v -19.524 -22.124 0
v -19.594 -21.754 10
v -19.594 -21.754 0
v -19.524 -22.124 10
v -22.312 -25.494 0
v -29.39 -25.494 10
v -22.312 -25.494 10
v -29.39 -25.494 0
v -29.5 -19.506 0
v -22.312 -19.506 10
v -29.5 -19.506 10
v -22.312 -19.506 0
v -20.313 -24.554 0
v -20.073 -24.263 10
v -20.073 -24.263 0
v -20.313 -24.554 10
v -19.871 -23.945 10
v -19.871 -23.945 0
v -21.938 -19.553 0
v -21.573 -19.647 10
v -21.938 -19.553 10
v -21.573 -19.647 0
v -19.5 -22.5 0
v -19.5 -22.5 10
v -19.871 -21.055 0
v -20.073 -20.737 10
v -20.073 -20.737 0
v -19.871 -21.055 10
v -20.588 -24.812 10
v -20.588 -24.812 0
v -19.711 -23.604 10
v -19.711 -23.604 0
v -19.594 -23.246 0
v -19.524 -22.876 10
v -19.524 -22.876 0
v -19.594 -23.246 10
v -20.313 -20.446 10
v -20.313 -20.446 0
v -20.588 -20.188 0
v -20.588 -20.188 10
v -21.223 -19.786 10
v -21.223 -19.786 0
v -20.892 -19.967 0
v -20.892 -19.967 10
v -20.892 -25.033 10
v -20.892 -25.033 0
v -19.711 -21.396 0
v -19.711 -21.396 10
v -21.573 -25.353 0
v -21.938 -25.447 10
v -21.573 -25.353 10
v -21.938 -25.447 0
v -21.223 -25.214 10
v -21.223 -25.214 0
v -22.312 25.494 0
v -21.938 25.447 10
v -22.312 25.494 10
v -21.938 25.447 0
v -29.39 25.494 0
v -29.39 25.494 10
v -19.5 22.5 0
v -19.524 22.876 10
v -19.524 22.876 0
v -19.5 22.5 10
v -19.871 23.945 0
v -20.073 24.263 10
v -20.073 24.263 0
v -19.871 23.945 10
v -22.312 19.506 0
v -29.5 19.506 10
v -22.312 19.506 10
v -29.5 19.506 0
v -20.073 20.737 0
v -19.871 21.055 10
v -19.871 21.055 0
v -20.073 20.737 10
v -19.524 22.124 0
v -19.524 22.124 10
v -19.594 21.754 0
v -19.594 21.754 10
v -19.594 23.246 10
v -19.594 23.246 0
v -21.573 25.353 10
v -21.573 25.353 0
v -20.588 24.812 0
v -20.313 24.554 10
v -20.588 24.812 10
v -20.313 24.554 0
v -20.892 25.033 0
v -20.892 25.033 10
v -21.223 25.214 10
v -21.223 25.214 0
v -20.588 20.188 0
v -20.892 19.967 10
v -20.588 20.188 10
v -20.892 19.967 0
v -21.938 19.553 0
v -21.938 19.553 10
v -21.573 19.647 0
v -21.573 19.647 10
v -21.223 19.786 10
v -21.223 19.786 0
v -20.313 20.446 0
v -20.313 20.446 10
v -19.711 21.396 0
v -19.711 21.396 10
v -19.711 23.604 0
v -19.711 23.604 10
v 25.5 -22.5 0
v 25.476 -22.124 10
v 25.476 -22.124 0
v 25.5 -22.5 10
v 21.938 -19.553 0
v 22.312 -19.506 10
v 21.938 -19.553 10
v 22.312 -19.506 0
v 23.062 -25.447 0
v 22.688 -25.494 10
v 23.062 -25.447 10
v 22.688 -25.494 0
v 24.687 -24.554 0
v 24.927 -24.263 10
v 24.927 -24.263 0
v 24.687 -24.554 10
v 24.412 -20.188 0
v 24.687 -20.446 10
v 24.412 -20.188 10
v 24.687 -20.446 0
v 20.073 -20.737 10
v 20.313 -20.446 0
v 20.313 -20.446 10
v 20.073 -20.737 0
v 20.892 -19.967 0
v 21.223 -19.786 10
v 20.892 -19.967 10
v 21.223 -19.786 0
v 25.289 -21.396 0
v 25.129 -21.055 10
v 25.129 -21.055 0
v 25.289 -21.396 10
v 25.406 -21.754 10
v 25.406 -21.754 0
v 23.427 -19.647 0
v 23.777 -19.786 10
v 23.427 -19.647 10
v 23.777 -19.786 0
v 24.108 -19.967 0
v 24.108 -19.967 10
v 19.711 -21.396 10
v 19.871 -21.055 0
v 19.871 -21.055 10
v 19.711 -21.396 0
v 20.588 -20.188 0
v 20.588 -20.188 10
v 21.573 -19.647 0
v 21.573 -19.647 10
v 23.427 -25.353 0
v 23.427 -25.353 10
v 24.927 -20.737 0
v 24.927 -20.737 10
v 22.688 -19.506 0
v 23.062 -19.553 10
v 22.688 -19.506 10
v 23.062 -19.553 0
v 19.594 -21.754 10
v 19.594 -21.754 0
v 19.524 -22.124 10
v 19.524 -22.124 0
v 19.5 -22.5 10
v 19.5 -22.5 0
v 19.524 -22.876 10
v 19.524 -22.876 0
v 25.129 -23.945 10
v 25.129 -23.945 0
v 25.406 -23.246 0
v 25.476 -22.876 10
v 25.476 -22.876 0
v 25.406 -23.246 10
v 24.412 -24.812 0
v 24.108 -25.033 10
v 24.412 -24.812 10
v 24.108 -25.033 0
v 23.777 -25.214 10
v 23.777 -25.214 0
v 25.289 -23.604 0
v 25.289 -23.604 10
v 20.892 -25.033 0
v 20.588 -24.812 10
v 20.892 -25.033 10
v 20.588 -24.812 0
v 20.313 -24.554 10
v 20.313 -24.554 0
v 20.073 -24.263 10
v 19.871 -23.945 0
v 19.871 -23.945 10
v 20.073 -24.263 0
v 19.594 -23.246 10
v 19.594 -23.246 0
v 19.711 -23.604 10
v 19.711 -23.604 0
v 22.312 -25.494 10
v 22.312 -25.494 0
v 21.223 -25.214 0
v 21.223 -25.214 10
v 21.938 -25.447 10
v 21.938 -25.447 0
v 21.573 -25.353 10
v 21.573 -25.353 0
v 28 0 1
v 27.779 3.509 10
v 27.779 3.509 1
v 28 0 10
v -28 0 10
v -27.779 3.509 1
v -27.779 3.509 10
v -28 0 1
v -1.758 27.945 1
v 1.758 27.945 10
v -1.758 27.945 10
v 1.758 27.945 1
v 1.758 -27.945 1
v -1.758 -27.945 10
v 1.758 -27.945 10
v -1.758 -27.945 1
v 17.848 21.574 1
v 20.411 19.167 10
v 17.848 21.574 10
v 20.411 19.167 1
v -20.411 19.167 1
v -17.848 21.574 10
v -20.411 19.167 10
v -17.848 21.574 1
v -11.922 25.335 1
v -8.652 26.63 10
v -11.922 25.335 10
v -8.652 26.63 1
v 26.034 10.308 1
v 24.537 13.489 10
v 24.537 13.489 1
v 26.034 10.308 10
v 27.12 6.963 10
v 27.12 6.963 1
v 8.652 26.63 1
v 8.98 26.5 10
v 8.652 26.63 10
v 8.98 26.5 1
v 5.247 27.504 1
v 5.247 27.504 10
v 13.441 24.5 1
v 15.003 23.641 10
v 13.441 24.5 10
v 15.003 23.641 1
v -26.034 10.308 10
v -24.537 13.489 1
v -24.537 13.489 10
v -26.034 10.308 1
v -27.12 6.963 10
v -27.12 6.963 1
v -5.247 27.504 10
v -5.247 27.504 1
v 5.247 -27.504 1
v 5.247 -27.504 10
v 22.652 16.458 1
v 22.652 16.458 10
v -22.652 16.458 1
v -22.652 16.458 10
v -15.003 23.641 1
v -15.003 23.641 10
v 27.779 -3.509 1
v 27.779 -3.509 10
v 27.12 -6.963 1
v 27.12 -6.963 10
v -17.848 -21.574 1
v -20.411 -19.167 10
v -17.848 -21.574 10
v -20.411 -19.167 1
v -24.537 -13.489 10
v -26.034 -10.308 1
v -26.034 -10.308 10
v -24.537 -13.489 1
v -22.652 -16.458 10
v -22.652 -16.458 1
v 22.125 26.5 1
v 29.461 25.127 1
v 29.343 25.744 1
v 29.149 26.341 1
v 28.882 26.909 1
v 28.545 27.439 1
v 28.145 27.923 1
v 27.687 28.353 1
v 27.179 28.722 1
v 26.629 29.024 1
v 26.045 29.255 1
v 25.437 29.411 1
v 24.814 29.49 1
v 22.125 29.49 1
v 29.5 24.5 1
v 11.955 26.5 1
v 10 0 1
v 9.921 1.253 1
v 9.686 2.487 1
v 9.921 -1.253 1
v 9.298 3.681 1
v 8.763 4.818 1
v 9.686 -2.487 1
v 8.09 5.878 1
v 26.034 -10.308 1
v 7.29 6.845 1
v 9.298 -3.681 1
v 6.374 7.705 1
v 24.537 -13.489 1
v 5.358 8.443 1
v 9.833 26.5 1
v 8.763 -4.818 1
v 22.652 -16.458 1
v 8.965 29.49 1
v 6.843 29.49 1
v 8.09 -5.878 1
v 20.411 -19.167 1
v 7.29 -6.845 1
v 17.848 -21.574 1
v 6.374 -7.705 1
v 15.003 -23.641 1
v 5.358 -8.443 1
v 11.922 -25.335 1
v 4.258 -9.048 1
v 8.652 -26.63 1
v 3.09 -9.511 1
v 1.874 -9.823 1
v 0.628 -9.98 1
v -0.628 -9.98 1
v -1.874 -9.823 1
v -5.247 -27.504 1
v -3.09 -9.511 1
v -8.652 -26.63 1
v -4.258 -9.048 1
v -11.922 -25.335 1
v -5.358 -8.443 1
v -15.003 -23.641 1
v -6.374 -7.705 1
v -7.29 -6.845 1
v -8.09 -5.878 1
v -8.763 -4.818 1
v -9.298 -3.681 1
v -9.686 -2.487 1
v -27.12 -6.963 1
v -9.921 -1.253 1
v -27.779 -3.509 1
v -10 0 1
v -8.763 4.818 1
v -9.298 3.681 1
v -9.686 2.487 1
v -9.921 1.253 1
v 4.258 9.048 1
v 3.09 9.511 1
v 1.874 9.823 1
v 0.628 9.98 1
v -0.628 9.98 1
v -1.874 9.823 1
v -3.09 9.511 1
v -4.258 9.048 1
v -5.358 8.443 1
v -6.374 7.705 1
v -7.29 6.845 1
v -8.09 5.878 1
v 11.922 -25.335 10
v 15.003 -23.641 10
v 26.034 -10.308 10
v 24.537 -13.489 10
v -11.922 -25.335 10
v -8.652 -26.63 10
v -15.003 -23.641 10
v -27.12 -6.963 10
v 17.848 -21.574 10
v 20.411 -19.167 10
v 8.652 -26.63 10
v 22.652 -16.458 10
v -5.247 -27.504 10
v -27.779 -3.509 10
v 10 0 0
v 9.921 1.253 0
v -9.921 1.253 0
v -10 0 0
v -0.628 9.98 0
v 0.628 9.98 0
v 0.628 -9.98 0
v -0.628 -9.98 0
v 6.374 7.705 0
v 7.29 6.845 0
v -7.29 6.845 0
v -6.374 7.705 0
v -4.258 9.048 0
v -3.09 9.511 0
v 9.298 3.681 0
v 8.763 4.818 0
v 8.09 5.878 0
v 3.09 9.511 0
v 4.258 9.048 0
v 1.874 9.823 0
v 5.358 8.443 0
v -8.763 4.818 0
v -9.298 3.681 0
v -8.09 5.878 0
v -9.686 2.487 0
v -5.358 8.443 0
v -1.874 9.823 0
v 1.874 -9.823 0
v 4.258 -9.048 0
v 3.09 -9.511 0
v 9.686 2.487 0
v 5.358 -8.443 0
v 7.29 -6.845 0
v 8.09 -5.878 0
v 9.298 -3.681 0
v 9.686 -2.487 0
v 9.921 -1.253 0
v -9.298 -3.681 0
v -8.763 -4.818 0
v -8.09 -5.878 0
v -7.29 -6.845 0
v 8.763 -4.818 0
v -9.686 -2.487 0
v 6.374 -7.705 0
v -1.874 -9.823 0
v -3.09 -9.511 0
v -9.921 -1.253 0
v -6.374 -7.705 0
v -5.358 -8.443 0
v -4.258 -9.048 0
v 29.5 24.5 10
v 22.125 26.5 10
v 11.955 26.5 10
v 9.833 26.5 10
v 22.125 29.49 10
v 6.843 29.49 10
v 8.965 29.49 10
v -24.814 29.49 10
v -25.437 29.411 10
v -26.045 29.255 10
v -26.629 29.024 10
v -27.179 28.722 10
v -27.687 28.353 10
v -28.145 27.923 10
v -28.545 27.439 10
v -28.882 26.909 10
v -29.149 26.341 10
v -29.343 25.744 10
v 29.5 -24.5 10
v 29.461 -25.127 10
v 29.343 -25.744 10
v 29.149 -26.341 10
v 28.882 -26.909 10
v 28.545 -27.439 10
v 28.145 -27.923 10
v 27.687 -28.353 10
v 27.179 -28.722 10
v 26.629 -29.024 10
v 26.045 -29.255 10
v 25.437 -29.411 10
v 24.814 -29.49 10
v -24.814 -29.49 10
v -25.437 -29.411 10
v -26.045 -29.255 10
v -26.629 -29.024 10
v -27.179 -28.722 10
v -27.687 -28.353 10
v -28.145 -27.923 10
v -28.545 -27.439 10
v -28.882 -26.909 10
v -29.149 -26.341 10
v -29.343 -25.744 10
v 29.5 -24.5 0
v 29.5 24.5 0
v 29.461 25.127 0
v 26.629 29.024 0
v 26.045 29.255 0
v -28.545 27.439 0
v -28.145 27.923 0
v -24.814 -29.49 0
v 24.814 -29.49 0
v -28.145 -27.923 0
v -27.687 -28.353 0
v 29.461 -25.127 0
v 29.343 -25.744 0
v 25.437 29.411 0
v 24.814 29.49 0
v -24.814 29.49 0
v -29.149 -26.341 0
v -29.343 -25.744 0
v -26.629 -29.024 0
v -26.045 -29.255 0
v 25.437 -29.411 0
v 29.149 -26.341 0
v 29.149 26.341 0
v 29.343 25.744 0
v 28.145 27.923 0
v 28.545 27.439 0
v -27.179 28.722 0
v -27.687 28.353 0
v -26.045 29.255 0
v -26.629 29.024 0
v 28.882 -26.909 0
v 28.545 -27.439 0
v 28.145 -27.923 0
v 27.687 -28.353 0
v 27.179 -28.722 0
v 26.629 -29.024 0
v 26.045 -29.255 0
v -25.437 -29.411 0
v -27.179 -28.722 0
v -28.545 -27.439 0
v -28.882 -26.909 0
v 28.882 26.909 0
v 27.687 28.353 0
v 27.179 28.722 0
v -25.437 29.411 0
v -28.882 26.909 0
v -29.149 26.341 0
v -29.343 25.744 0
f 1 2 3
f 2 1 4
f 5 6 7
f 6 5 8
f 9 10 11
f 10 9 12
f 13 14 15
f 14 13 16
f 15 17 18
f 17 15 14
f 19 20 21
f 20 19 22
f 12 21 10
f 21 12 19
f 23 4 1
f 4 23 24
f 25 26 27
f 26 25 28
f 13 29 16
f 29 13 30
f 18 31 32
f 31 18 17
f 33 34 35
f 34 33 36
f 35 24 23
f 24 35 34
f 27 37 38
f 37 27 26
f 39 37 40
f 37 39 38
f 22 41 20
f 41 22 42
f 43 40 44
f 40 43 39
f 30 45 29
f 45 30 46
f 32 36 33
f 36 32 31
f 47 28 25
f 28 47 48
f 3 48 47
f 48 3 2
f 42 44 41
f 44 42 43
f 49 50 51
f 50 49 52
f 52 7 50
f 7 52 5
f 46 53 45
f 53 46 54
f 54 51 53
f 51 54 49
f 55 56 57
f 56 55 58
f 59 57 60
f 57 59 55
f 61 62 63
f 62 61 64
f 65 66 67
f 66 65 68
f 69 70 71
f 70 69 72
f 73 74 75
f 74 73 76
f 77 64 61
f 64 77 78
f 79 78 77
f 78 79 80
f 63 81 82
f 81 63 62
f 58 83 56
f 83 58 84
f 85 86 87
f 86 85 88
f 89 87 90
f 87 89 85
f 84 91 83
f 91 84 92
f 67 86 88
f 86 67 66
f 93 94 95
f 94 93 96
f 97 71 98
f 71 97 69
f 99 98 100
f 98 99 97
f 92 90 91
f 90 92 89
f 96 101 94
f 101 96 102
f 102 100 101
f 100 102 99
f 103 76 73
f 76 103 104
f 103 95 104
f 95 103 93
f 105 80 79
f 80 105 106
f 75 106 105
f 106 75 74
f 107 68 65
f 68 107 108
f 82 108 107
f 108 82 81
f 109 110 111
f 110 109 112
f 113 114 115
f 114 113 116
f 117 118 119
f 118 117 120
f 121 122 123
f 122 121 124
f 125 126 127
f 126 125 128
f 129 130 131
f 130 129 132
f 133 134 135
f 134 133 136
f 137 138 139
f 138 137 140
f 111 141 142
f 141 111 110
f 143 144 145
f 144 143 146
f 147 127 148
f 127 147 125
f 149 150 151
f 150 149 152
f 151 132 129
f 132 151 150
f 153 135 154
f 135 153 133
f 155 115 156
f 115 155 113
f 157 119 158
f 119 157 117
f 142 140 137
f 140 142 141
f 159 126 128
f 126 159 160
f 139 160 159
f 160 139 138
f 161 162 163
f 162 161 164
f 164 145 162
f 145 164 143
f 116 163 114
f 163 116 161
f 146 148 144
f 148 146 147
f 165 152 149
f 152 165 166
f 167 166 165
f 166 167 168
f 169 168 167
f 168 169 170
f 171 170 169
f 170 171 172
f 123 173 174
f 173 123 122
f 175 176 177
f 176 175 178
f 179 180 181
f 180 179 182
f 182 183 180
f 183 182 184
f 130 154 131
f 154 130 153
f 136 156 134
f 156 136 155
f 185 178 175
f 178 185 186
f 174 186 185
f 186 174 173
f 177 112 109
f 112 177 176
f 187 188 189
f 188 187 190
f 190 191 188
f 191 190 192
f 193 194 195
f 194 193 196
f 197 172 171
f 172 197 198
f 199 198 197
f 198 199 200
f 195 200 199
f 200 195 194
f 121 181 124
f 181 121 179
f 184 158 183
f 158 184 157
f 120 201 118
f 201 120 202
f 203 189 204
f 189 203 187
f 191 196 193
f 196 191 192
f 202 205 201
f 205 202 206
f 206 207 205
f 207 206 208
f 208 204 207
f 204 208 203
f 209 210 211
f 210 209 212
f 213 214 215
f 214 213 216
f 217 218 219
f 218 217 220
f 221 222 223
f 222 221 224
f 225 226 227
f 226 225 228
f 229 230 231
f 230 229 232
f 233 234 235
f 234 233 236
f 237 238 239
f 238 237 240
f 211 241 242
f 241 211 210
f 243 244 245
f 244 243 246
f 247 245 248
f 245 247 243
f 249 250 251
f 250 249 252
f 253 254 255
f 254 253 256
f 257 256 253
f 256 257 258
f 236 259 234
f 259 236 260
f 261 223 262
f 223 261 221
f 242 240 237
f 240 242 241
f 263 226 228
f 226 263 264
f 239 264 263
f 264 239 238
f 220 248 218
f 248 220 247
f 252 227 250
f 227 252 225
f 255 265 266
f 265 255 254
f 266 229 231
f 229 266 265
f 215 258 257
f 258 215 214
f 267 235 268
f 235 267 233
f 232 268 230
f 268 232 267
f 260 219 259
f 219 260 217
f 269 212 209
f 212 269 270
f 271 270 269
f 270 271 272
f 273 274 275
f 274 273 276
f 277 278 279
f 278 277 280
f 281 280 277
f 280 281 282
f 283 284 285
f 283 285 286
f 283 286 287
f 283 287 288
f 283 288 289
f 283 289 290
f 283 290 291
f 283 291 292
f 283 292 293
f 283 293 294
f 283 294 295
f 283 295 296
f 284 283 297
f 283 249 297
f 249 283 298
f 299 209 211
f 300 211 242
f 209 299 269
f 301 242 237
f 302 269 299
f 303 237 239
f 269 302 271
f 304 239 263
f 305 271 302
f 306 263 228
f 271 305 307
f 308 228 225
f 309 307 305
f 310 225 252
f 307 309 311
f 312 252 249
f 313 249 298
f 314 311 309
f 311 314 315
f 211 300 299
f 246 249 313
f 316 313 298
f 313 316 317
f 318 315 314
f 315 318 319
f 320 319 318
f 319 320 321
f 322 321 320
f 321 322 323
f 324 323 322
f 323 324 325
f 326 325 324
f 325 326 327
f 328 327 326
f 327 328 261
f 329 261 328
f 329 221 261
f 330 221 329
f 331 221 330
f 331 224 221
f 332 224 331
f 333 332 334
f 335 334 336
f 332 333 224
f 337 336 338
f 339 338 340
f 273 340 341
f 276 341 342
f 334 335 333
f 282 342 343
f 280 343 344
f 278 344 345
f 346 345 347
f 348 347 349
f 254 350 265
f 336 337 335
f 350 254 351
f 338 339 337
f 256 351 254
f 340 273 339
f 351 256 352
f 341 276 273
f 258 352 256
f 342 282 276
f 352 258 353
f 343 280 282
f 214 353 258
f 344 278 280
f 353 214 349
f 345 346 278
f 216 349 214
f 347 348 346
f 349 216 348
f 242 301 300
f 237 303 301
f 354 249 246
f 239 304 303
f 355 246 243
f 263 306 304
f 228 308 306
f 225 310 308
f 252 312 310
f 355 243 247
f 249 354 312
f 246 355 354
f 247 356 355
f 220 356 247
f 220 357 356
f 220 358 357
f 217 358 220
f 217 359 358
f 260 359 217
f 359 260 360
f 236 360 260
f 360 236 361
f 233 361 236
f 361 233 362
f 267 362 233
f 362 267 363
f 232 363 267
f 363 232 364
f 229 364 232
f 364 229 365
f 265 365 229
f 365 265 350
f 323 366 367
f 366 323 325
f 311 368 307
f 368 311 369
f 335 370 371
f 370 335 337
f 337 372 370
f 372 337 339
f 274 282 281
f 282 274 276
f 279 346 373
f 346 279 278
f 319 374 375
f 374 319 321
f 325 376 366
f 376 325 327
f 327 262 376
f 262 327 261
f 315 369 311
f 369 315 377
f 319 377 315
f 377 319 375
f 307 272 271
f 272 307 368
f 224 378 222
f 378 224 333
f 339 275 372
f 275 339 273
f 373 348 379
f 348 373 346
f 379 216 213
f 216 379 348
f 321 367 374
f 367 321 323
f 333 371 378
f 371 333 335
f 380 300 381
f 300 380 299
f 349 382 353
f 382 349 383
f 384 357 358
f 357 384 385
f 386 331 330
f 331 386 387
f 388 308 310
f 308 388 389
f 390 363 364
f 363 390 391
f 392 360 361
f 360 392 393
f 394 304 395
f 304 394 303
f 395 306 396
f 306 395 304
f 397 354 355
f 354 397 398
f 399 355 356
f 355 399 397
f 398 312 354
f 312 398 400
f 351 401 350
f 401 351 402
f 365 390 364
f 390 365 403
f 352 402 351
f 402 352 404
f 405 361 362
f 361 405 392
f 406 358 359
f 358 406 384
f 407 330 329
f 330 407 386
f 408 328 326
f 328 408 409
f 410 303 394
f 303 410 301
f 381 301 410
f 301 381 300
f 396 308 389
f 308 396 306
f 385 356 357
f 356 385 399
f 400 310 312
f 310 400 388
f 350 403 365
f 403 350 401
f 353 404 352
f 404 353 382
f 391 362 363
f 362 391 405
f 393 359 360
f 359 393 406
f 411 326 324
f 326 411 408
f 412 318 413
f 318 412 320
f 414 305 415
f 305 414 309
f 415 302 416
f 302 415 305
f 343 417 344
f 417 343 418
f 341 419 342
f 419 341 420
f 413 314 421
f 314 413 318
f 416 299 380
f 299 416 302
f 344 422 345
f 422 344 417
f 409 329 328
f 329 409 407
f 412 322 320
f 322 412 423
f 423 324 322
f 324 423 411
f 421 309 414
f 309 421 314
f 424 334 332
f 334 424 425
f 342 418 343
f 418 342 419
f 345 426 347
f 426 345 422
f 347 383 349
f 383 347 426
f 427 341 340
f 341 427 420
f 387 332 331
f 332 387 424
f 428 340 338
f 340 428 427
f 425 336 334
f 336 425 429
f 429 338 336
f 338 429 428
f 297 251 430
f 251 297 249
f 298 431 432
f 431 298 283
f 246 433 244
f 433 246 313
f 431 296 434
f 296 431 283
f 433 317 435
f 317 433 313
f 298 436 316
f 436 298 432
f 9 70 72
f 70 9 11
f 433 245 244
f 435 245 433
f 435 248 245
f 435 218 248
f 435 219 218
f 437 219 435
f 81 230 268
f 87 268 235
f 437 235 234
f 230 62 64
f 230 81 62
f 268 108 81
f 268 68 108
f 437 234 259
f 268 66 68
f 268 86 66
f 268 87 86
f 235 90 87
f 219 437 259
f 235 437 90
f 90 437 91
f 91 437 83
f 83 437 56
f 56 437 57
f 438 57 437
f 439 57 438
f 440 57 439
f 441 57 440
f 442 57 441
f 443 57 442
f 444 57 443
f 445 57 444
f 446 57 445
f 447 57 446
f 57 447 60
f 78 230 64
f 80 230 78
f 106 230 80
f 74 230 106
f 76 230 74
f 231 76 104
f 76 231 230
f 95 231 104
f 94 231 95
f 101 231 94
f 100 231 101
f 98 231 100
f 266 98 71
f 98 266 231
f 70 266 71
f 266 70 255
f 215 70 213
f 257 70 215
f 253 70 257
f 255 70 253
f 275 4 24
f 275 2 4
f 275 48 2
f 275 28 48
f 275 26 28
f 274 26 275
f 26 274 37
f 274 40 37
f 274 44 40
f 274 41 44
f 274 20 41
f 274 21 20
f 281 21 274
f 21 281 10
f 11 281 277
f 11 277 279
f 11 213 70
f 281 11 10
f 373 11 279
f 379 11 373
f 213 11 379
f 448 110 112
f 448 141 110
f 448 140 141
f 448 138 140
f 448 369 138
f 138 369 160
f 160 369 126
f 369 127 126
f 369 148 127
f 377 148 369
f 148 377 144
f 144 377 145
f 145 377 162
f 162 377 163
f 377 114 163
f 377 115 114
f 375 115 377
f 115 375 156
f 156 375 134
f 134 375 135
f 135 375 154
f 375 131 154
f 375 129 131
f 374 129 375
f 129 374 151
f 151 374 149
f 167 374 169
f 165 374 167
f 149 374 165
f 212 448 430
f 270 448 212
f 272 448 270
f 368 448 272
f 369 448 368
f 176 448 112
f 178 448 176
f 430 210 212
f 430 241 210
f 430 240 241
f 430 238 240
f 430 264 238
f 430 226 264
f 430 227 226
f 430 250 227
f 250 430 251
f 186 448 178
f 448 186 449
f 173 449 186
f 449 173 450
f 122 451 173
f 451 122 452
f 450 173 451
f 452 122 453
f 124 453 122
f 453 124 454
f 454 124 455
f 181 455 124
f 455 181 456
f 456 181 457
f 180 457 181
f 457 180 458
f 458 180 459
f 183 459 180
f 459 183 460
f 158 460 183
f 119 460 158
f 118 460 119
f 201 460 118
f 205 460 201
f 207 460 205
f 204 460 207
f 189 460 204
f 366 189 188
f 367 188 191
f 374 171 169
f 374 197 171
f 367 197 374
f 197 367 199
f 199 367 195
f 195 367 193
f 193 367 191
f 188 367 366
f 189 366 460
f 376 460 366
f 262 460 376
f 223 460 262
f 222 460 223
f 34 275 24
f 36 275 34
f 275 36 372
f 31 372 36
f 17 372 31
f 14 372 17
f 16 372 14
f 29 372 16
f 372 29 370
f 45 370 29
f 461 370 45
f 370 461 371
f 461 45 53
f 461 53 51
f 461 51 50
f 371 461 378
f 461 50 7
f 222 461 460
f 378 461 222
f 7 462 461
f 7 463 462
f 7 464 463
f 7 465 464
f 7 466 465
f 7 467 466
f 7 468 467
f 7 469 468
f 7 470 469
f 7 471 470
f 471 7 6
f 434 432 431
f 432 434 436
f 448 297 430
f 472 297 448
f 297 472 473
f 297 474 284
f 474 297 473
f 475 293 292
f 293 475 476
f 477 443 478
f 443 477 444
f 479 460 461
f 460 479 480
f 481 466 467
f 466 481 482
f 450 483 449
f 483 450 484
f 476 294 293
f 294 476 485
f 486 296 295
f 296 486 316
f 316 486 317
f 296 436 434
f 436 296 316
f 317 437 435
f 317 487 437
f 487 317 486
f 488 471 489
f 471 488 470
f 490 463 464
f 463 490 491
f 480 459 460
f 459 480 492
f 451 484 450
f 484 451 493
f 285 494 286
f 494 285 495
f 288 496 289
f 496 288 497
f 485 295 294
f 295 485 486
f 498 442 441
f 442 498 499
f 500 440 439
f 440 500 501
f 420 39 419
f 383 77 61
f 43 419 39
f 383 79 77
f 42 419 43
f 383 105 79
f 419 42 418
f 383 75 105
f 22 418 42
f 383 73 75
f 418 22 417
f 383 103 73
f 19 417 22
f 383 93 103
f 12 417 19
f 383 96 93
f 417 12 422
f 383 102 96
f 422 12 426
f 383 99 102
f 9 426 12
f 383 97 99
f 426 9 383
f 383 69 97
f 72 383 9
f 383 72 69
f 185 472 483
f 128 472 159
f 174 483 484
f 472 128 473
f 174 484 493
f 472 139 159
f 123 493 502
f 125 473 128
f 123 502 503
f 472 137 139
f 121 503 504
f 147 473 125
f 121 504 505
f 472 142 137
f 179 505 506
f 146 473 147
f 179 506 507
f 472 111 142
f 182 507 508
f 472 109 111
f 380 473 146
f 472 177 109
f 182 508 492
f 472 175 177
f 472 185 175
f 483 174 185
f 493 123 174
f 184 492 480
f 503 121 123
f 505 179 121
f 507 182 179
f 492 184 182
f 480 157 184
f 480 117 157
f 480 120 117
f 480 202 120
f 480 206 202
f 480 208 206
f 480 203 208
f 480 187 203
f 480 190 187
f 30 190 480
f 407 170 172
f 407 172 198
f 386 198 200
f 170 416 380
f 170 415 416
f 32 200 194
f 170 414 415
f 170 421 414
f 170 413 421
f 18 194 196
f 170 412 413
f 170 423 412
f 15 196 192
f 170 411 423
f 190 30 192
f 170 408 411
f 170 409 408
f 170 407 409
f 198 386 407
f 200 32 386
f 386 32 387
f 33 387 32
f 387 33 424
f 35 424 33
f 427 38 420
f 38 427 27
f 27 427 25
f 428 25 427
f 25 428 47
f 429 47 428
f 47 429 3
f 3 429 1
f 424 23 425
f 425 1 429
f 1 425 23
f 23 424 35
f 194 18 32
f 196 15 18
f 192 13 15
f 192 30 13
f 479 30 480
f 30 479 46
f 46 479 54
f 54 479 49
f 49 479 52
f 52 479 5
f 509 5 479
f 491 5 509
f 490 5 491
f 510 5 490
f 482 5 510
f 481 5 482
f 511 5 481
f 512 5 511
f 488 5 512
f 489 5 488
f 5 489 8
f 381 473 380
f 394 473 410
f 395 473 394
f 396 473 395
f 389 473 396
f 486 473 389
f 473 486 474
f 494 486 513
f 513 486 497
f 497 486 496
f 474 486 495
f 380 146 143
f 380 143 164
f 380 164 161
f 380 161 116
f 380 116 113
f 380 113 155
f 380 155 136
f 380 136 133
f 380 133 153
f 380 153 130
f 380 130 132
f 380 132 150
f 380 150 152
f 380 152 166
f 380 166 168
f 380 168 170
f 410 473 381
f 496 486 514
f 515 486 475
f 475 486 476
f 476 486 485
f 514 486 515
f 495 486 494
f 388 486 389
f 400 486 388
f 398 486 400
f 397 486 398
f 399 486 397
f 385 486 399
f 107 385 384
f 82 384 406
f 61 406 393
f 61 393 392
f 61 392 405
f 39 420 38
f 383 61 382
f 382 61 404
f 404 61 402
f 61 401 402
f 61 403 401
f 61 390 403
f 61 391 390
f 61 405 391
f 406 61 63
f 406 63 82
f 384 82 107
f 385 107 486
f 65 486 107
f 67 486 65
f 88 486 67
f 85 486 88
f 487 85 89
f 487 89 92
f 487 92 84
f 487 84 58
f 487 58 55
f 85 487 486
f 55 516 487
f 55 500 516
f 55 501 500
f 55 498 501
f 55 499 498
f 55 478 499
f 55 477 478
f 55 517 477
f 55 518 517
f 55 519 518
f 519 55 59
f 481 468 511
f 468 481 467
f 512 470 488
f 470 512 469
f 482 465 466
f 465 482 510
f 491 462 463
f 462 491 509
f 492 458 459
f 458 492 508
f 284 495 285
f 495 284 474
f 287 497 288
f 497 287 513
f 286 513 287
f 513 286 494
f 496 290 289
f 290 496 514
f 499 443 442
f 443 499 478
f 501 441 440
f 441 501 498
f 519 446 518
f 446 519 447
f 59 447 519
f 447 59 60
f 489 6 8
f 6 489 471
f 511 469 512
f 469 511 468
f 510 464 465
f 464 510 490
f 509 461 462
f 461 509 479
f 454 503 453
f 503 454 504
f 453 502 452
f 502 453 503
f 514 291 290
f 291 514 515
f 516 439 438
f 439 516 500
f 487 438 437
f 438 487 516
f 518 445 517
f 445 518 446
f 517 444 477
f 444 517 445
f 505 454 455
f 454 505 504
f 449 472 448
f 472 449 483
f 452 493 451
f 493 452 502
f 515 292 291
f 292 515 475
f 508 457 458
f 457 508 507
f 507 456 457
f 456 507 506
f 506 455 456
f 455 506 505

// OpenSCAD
$fn = 50;


difference() {
	union() {
		translate(v = [0, 0, 0]) {
			rotate(a = [0, 0, 0]) {
				hull() {
					translate(v = [-24.5000000000, 24.5000000000, 0]) {
						rotate(a = [0, 0, 0]) {
							translate(v = [0, 0, 0]) {
								rotate(a = [0, 0, 0]) {
									cylinder(h = 10, r = 5);
								}
							}
						}
					}
					translate(v = [24.5000000000, 24.5000000000, 0]) {
						rotate(a = [0, 0, 0]) {
							translate(v = [0, 0, 0]) {
								rotate(a = [0, 0, 0]) {
									cylinder(h = 10, r = 5);
								}
							}
						}
					}
					translate(v = [-24.5000000000, -24.5000000000, 0]) {
						rotate(a = [0, 0, 0]) {
							translate(v = [0, 0, 0]) {
								rotate(a = [0, 0, 0]) {
									cylinder(h = 10, r = 5);
								}
							}
						}
					}
					translate(v = [24.5000000000, -24.5000000000, 0]) {
						rotate(a = [0, 0, 0]) {
							translate(v = [0, 0, 0]) {
								rotate(a = [0, 0, 0]) {
									cylinder(h = 10, r = 5);
								}
							}
						}
					}
				}
			}
		}
	}
	union() {
		translate(v = [-30.0000000000, -22.5000000000, -125]) {
			rotate(a = [0, 0, 0]) {
				hull() {
					translate(v = [7.5000000000, 0, 0]) {
						rotate(a = [0, 0, 0]) {
							translate(v = [0, 0, 0]) {
								rotate(a = [0, 0, 0]) {
									cylinder(h = 250, r = 3.0000000000);
								}
							}
						}
					}
					translate(v = [-7.5000000000, 0, 0]) {
						rotate(a = [0, 0, 0]) {
							translate(v = [0, 0, 0]) {
								rotate(a = [0, 0, 0]) {
									cylinder(h = 250, r = 3.0000000000);
								}
							}
						}
					}
				}
			}
		}
		translate(v = [-30.0000000000, 22.5000000000, -125]) {
			rotate(a = [0, 0, 0]) {
				hull() {
					translate(v = [7.5000000000, 0, 0]) {
						rotate(a = [0, 0, 0]) {
							translate(v = [0, 0, 0]) {
								rotate(a = [0, 0, 0]) {
									cylinder(h = 250, r = 3.0000000000);
								}
							}
						}
					}
					translate(v = [-7.5000000000, 0, 0]) {
						rotate(a = [0, 0, 0]) {
							translate(v = [0, 0, 0]) {
								rotate(a = [0, 0, 0]) {
									cylinder(h = 250, r = 3.0000000000);
								}
							}
						}
					}
				}
			}
		}
		translate(v = [22.5000000000, -22.5000000000, -125.0000000000]) {
			rotate(a = [0, 0, 0]) {
				cylinder(h = 250, r = 3.0000000000);
			}
		}
		translate(v = [0, 0, 1.0000000000]) {
			rotate(a = [0, 0, 0]) {
				cylinder(h = 12, r = 28.0000000000);
			}
		}
		translate(v = [0, 0, -5.0000000000]) {
			rotate(a = [0, 0, 0]) {
				cylinder(h = 10, r = 10.0000000000);
			}
		}
		translate(v = [0.0000000000, 24.5000000000, 1]) {
			rotate(a = [0, 0, 0]) {
				cube(size = [29.5000000000, 2, 12]);
			}
		}
		translate(v = [22.1250000000, 24.5000000000, 1]) {
			rotate(a = [0, 0, 0]) {
				cube(size = [7.3750000000, 5, 12]);
			}
		}
		translate(v = [6.0833333333, 30.2500000000, 1]) {
			rotate(a = [0, 0, -45]) {
				cube(size = [7.5000000000, 1.5000000000, 12]);
			}
		}
	}
}
